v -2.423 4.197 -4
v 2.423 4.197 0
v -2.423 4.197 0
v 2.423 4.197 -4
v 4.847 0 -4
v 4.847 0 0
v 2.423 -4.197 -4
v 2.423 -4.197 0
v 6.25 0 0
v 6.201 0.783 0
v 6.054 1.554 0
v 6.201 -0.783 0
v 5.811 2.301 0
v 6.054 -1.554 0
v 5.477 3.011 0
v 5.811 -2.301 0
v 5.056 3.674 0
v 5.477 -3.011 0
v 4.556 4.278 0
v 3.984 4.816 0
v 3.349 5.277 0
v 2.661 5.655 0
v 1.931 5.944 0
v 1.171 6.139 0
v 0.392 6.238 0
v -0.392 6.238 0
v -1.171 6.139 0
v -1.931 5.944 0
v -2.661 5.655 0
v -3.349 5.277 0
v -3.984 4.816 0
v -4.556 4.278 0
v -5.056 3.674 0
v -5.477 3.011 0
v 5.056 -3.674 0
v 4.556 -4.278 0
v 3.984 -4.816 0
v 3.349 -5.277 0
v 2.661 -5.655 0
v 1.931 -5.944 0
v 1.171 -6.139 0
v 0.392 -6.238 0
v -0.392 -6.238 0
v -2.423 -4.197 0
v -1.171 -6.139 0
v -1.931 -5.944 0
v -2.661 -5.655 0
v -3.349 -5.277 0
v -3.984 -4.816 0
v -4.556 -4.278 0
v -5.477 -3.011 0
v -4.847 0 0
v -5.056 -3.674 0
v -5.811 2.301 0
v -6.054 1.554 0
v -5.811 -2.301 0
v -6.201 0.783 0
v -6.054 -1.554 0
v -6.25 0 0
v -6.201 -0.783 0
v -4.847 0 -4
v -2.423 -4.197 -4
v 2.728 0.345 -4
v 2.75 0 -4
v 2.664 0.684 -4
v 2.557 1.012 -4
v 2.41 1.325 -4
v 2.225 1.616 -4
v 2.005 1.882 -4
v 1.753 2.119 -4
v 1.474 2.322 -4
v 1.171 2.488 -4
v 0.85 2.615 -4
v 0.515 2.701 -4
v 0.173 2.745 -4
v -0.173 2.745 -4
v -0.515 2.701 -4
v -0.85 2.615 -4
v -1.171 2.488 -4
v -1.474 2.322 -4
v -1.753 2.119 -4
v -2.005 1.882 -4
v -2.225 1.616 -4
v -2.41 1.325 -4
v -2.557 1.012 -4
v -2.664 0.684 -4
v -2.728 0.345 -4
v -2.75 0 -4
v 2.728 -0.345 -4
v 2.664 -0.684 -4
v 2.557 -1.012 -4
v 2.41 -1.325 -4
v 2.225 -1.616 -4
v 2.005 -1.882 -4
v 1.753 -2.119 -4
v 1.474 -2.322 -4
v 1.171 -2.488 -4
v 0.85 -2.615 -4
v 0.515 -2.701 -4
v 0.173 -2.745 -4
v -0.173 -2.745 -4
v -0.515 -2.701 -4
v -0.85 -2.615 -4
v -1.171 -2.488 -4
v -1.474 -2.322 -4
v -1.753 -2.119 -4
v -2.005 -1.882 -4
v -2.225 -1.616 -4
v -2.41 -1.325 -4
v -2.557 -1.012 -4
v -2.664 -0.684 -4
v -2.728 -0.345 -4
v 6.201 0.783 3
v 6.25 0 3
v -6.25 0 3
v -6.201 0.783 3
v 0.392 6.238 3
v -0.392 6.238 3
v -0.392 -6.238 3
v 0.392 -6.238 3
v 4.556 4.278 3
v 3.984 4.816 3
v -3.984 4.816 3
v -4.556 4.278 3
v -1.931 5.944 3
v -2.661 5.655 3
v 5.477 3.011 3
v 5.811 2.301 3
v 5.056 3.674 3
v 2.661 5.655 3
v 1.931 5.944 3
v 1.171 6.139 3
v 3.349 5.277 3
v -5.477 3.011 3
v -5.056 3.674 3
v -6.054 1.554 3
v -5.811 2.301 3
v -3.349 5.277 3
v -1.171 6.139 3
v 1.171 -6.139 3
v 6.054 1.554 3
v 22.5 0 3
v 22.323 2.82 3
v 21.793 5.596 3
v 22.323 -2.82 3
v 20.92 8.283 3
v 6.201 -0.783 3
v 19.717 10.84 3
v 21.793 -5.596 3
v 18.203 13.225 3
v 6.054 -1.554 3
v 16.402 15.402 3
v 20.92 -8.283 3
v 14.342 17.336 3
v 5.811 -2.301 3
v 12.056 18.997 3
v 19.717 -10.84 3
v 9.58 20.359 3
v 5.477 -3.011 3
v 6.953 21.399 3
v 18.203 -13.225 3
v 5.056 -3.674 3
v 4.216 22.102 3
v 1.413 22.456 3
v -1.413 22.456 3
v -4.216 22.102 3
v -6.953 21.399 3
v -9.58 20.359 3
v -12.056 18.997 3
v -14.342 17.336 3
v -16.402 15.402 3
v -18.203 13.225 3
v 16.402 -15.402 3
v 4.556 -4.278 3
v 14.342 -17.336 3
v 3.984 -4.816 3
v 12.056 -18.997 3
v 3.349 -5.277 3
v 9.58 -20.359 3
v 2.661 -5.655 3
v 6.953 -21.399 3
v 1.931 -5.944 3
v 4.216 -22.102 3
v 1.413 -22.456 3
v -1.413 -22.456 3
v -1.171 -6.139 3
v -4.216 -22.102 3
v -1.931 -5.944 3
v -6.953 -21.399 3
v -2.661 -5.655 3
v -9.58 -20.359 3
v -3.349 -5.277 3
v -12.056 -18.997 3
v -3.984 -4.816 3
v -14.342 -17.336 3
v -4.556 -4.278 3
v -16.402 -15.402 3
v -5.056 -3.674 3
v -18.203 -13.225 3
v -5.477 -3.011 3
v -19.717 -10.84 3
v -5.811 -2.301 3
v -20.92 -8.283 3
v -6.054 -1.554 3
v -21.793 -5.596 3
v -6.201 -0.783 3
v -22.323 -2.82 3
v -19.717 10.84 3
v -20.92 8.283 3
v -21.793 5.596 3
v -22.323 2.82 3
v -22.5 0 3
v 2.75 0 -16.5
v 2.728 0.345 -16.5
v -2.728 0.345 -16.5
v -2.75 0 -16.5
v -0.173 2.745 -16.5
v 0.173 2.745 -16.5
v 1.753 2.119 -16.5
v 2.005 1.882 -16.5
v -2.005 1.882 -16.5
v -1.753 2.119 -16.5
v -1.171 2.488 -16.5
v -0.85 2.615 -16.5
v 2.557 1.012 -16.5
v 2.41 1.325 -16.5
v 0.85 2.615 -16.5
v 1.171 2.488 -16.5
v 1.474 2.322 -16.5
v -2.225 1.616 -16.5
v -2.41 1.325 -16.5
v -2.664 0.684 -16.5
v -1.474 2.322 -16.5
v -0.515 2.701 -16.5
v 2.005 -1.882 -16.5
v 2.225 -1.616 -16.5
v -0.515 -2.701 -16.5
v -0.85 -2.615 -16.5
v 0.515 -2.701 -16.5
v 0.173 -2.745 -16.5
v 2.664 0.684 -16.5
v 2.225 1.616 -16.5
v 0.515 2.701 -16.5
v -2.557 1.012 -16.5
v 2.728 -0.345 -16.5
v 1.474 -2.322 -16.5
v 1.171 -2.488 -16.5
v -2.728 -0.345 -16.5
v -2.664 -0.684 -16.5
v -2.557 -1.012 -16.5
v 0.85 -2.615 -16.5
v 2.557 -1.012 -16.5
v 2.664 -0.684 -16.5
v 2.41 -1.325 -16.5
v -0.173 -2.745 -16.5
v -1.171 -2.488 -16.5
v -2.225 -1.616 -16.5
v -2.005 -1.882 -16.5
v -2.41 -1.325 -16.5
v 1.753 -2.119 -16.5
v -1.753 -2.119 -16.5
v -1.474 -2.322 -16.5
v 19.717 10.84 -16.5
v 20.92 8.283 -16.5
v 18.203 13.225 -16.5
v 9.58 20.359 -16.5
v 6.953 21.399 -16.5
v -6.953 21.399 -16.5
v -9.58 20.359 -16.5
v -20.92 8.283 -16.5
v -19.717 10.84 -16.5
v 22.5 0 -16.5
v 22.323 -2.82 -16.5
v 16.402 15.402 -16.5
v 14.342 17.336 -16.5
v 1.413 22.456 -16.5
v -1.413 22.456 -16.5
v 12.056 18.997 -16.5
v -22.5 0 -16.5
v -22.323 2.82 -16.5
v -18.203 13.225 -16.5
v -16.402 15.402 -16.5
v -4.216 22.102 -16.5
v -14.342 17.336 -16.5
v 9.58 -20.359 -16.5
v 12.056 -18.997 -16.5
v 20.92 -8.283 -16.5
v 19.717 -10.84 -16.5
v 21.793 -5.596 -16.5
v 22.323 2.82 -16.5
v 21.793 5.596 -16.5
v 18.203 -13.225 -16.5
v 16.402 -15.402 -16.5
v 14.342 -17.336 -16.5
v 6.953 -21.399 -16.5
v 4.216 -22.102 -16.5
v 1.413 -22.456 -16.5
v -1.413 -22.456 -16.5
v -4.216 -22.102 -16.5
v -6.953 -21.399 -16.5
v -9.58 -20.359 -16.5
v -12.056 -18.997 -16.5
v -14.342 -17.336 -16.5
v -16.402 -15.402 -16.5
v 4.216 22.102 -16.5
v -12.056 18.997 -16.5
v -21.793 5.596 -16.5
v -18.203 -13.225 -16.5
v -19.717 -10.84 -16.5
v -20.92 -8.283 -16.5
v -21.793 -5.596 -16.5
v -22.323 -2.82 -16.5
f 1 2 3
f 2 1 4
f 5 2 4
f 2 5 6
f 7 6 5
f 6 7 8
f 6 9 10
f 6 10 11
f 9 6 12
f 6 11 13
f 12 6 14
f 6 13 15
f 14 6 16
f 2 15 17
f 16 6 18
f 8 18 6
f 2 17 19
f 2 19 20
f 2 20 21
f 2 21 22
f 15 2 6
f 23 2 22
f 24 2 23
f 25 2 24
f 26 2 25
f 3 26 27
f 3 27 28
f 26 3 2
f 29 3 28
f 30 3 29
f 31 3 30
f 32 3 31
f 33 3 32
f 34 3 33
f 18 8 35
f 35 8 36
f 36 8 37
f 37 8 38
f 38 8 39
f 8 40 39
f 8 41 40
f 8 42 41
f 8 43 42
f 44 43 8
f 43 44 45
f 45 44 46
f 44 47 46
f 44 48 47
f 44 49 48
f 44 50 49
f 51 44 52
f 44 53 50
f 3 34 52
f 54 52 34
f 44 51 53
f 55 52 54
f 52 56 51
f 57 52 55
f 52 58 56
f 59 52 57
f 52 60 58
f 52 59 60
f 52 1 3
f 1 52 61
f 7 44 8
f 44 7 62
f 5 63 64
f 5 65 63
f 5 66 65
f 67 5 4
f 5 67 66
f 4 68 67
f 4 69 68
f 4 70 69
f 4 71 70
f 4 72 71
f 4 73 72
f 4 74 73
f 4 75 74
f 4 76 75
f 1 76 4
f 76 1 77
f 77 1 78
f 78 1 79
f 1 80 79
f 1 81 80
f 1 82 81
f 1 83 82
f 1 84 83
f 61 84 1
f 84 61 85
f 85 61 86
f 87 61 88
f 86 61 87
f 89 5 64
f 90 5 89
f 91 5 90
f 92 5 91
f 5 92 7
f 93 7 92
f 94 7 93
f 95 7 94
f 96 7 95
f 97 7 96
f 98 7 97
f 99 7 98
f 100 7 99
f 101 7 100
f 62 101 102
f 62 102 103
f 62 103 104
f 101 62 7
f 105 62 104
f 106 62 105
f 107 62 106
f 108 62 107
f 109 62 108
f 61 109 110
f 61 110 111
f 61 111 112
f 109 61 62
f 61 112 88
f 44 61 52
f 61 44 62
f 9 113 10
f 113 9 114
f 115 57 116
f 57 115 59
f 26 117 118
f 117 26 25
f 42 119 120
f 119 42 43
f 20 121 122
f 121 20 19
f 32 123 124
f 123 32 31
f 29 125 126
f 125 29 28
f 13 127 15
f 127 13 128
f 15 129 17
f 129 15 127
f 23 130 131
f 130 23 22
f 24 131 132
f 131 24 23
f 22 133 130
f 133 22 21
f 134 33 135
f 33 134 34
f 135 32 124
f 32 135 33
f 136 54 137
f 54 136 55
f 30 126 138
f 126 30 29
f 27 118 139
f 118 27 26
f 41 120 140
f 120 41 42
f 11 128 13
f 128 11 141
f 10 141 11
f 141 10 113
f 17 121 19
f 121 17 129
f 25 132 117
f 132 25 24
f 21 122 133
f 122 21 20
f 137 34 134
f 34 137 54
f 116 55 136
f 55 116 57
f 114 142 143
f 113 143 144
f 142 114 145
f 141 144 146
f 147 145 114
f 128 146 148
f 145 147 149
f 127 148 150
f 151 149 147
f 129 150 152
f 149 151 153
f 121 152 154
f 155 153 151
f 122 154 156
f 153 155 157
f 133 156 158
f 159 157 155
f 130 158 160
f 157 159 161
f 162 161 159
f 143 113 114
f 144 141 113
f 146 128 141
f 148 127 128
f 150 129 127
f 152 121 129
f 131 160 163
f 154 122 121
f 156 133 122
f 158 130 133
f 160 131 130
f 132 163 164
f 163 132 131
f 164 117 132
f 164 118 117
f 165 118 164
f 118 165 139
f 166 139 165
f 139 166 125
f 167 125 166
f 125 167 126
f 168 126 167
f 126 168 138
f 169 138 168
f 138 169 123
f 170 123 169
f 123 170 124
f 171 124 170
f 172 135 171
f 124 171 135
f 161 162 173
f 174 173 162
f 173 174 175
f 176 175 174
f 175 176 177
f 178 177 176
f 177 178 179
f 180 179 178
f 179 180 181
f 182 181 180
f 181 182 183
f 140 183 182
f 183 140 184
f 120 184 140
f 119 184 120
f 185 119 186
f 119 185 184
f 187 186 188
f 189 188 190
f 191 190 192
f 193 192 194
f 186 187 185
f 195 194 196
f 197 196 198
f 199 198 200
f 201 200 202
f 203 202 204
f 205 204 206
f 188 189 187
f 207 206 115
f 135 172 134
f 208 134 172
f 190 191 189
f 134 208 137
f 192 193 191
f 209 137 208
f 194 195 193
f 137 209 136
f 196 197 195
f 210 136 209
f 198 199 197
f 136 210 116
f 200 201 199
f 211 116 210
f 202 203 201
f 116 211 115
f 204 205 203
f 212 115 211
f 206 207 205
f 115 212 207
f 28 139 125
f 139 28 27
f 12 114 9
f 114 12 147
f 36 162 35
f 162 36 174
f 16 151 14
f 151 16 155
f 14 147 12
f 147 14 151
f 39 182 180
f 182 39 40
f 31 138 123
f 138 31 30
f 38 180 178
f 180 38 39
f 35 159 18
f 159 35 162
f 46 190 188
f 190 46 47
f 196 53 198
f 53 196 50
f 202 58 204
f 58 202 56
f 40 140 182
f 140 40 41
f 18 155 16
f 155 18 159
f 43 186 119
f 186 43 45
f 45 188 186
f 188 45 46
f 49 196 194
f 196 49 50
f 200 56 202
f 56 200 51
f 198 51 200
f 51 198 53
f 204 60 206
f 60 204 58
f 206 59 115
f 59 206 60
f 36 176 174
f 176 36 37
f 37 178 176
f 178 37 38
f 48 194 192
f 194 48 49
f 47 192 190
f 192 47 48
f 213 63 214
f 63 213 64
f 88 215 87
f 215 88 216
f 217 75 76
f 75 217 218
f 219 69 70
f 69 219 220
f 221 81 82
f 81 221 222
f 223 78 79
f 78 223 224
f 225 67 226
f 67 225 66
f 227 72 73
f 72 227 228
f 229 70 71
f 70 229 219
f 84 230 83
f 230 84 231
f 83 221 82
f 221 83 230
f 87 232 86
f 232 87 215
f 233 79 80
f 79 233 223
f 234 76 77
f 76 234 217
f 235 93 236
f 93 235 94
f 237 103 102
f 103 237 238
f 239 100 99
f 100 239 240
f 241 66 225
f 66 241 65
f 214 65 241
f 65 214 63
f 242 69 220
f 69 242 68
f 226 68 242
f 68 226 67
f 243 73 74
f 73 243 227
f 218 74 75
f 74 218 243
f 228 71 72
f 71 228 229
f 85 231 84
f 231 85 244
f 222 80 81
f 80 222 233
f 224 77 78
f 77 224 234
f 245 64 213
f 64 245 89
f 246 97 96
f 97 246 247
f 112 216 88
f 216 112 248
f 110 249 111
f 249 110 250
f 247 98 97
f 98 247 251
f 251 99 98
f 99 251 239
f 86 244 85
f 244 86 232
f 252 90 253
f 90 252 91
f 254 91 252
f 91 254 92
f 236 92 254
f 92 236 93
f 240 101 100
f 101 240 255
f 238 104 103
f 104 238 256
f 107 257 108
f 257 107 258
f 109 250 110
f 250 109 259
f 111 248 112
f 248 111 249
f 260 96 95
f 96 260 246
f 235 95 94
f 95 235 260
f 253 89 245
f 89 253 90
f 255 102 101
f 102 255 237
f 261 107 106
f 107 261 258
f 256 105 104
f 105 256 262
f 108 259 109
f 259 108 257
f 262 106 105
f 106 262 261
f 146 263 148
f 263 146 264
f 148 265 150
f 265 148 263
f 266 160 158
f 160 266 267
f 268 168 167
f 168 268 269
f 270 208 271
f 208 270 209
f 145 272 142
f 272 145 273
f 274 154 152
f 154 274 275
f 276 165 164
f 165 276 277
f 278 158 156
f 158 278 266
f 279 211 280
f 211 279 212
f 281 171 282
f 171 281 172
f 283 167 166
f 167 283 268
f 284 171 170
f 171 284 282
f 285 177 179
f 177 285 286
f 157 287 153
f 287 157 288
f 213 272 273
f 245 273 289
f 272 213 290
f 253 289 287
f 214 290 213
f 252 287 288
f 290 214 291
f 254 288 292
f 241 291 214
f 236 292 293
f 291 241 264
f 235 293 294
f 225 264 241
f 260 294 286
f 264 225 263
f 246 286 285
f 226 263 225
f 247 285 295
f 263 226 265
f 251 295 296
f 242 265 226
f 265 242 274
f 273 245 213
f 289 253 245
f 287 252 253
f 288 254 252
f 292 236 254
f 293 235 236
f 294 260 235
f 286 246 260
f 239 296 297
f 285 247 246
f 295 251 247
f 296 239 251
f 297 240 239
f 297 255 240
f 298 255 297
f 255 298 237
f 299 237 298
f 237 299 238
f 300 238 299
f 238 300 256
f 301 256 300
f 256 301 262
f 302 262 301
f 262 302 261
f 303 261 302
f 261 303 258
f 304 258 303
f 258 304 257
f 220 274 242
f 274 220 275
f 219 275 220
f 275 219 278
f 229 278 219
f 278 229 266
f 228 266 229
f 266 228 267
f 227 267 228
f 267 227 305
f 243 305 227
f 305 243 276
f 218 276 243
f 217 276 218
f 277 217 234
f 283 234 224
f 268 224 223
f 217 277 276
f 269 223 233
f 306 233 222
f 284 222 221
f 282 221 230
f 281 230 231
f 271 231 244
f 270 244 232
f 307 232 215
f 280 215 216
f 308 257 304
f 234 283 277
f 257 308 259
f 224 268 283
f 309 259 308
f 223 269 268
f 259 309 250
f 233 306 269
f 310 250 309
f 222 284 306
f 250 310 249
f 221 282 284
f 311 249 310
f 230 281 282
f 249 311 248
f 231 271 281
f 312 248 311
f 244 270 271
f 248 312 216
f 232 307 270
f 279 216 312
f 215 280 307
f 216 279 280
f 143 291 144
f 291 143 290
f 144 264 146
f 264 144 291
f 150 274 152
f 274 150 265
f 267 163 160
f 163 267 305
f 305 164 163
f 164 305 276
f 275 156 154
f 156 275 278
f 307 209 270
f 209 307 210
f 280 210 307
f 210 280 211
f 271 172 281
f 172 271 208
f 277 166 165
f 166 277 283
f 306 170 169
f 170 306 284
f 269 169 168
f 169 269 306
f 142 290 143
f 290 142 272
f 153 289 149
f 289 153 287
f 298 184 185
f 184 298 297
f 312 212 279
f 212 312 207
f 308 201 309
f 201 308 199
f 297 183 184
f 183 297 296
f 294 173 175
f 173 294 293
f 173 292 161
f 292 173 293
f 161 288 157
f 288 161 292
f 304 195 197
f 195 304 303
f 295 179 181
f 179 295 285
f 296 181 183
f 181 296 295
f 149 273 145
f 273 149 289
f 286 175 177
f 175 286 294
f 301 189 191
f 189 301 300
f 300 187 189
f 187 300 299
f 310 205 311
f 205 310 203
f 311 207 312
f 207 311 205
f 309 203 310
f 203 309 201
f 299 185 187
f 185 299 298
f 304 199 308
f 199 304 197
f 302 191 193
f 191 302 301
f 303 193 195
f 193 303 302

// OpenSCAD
$fn = 50;

difference() {
	union() {
		translate(v = [0, 0, -16.5]) {
			cylinder(h = 19.5, r = 22.5);
		}
	}
	union() {
		translate(v = [0, 0, 0]) {
			rotate(a = [0, 0, 0]) {
				difference() {
					union() {
						translate(v = [0, 0, -4]) {
							linear_extrude(height = 4) {
								polygon(points = [[4.8468, 0.0], [2.4234000000000004, 4.197451927062417], [-2.423399999999999, 4.197451927062417], [-4.8468, 5.935618106107392e-16], [-2.423400000000002, -4.197451927062416], [2.423399999999997, -4.197451927062419]]);
							}
						}
					}
					union();
				}
			}
		}
		#cylinder(h = 3, r = 6.25);
		#translate(v = [0, 0, -100.0]) {
			cylinder(h = 200, r = 2.75);
		}
	}
}
